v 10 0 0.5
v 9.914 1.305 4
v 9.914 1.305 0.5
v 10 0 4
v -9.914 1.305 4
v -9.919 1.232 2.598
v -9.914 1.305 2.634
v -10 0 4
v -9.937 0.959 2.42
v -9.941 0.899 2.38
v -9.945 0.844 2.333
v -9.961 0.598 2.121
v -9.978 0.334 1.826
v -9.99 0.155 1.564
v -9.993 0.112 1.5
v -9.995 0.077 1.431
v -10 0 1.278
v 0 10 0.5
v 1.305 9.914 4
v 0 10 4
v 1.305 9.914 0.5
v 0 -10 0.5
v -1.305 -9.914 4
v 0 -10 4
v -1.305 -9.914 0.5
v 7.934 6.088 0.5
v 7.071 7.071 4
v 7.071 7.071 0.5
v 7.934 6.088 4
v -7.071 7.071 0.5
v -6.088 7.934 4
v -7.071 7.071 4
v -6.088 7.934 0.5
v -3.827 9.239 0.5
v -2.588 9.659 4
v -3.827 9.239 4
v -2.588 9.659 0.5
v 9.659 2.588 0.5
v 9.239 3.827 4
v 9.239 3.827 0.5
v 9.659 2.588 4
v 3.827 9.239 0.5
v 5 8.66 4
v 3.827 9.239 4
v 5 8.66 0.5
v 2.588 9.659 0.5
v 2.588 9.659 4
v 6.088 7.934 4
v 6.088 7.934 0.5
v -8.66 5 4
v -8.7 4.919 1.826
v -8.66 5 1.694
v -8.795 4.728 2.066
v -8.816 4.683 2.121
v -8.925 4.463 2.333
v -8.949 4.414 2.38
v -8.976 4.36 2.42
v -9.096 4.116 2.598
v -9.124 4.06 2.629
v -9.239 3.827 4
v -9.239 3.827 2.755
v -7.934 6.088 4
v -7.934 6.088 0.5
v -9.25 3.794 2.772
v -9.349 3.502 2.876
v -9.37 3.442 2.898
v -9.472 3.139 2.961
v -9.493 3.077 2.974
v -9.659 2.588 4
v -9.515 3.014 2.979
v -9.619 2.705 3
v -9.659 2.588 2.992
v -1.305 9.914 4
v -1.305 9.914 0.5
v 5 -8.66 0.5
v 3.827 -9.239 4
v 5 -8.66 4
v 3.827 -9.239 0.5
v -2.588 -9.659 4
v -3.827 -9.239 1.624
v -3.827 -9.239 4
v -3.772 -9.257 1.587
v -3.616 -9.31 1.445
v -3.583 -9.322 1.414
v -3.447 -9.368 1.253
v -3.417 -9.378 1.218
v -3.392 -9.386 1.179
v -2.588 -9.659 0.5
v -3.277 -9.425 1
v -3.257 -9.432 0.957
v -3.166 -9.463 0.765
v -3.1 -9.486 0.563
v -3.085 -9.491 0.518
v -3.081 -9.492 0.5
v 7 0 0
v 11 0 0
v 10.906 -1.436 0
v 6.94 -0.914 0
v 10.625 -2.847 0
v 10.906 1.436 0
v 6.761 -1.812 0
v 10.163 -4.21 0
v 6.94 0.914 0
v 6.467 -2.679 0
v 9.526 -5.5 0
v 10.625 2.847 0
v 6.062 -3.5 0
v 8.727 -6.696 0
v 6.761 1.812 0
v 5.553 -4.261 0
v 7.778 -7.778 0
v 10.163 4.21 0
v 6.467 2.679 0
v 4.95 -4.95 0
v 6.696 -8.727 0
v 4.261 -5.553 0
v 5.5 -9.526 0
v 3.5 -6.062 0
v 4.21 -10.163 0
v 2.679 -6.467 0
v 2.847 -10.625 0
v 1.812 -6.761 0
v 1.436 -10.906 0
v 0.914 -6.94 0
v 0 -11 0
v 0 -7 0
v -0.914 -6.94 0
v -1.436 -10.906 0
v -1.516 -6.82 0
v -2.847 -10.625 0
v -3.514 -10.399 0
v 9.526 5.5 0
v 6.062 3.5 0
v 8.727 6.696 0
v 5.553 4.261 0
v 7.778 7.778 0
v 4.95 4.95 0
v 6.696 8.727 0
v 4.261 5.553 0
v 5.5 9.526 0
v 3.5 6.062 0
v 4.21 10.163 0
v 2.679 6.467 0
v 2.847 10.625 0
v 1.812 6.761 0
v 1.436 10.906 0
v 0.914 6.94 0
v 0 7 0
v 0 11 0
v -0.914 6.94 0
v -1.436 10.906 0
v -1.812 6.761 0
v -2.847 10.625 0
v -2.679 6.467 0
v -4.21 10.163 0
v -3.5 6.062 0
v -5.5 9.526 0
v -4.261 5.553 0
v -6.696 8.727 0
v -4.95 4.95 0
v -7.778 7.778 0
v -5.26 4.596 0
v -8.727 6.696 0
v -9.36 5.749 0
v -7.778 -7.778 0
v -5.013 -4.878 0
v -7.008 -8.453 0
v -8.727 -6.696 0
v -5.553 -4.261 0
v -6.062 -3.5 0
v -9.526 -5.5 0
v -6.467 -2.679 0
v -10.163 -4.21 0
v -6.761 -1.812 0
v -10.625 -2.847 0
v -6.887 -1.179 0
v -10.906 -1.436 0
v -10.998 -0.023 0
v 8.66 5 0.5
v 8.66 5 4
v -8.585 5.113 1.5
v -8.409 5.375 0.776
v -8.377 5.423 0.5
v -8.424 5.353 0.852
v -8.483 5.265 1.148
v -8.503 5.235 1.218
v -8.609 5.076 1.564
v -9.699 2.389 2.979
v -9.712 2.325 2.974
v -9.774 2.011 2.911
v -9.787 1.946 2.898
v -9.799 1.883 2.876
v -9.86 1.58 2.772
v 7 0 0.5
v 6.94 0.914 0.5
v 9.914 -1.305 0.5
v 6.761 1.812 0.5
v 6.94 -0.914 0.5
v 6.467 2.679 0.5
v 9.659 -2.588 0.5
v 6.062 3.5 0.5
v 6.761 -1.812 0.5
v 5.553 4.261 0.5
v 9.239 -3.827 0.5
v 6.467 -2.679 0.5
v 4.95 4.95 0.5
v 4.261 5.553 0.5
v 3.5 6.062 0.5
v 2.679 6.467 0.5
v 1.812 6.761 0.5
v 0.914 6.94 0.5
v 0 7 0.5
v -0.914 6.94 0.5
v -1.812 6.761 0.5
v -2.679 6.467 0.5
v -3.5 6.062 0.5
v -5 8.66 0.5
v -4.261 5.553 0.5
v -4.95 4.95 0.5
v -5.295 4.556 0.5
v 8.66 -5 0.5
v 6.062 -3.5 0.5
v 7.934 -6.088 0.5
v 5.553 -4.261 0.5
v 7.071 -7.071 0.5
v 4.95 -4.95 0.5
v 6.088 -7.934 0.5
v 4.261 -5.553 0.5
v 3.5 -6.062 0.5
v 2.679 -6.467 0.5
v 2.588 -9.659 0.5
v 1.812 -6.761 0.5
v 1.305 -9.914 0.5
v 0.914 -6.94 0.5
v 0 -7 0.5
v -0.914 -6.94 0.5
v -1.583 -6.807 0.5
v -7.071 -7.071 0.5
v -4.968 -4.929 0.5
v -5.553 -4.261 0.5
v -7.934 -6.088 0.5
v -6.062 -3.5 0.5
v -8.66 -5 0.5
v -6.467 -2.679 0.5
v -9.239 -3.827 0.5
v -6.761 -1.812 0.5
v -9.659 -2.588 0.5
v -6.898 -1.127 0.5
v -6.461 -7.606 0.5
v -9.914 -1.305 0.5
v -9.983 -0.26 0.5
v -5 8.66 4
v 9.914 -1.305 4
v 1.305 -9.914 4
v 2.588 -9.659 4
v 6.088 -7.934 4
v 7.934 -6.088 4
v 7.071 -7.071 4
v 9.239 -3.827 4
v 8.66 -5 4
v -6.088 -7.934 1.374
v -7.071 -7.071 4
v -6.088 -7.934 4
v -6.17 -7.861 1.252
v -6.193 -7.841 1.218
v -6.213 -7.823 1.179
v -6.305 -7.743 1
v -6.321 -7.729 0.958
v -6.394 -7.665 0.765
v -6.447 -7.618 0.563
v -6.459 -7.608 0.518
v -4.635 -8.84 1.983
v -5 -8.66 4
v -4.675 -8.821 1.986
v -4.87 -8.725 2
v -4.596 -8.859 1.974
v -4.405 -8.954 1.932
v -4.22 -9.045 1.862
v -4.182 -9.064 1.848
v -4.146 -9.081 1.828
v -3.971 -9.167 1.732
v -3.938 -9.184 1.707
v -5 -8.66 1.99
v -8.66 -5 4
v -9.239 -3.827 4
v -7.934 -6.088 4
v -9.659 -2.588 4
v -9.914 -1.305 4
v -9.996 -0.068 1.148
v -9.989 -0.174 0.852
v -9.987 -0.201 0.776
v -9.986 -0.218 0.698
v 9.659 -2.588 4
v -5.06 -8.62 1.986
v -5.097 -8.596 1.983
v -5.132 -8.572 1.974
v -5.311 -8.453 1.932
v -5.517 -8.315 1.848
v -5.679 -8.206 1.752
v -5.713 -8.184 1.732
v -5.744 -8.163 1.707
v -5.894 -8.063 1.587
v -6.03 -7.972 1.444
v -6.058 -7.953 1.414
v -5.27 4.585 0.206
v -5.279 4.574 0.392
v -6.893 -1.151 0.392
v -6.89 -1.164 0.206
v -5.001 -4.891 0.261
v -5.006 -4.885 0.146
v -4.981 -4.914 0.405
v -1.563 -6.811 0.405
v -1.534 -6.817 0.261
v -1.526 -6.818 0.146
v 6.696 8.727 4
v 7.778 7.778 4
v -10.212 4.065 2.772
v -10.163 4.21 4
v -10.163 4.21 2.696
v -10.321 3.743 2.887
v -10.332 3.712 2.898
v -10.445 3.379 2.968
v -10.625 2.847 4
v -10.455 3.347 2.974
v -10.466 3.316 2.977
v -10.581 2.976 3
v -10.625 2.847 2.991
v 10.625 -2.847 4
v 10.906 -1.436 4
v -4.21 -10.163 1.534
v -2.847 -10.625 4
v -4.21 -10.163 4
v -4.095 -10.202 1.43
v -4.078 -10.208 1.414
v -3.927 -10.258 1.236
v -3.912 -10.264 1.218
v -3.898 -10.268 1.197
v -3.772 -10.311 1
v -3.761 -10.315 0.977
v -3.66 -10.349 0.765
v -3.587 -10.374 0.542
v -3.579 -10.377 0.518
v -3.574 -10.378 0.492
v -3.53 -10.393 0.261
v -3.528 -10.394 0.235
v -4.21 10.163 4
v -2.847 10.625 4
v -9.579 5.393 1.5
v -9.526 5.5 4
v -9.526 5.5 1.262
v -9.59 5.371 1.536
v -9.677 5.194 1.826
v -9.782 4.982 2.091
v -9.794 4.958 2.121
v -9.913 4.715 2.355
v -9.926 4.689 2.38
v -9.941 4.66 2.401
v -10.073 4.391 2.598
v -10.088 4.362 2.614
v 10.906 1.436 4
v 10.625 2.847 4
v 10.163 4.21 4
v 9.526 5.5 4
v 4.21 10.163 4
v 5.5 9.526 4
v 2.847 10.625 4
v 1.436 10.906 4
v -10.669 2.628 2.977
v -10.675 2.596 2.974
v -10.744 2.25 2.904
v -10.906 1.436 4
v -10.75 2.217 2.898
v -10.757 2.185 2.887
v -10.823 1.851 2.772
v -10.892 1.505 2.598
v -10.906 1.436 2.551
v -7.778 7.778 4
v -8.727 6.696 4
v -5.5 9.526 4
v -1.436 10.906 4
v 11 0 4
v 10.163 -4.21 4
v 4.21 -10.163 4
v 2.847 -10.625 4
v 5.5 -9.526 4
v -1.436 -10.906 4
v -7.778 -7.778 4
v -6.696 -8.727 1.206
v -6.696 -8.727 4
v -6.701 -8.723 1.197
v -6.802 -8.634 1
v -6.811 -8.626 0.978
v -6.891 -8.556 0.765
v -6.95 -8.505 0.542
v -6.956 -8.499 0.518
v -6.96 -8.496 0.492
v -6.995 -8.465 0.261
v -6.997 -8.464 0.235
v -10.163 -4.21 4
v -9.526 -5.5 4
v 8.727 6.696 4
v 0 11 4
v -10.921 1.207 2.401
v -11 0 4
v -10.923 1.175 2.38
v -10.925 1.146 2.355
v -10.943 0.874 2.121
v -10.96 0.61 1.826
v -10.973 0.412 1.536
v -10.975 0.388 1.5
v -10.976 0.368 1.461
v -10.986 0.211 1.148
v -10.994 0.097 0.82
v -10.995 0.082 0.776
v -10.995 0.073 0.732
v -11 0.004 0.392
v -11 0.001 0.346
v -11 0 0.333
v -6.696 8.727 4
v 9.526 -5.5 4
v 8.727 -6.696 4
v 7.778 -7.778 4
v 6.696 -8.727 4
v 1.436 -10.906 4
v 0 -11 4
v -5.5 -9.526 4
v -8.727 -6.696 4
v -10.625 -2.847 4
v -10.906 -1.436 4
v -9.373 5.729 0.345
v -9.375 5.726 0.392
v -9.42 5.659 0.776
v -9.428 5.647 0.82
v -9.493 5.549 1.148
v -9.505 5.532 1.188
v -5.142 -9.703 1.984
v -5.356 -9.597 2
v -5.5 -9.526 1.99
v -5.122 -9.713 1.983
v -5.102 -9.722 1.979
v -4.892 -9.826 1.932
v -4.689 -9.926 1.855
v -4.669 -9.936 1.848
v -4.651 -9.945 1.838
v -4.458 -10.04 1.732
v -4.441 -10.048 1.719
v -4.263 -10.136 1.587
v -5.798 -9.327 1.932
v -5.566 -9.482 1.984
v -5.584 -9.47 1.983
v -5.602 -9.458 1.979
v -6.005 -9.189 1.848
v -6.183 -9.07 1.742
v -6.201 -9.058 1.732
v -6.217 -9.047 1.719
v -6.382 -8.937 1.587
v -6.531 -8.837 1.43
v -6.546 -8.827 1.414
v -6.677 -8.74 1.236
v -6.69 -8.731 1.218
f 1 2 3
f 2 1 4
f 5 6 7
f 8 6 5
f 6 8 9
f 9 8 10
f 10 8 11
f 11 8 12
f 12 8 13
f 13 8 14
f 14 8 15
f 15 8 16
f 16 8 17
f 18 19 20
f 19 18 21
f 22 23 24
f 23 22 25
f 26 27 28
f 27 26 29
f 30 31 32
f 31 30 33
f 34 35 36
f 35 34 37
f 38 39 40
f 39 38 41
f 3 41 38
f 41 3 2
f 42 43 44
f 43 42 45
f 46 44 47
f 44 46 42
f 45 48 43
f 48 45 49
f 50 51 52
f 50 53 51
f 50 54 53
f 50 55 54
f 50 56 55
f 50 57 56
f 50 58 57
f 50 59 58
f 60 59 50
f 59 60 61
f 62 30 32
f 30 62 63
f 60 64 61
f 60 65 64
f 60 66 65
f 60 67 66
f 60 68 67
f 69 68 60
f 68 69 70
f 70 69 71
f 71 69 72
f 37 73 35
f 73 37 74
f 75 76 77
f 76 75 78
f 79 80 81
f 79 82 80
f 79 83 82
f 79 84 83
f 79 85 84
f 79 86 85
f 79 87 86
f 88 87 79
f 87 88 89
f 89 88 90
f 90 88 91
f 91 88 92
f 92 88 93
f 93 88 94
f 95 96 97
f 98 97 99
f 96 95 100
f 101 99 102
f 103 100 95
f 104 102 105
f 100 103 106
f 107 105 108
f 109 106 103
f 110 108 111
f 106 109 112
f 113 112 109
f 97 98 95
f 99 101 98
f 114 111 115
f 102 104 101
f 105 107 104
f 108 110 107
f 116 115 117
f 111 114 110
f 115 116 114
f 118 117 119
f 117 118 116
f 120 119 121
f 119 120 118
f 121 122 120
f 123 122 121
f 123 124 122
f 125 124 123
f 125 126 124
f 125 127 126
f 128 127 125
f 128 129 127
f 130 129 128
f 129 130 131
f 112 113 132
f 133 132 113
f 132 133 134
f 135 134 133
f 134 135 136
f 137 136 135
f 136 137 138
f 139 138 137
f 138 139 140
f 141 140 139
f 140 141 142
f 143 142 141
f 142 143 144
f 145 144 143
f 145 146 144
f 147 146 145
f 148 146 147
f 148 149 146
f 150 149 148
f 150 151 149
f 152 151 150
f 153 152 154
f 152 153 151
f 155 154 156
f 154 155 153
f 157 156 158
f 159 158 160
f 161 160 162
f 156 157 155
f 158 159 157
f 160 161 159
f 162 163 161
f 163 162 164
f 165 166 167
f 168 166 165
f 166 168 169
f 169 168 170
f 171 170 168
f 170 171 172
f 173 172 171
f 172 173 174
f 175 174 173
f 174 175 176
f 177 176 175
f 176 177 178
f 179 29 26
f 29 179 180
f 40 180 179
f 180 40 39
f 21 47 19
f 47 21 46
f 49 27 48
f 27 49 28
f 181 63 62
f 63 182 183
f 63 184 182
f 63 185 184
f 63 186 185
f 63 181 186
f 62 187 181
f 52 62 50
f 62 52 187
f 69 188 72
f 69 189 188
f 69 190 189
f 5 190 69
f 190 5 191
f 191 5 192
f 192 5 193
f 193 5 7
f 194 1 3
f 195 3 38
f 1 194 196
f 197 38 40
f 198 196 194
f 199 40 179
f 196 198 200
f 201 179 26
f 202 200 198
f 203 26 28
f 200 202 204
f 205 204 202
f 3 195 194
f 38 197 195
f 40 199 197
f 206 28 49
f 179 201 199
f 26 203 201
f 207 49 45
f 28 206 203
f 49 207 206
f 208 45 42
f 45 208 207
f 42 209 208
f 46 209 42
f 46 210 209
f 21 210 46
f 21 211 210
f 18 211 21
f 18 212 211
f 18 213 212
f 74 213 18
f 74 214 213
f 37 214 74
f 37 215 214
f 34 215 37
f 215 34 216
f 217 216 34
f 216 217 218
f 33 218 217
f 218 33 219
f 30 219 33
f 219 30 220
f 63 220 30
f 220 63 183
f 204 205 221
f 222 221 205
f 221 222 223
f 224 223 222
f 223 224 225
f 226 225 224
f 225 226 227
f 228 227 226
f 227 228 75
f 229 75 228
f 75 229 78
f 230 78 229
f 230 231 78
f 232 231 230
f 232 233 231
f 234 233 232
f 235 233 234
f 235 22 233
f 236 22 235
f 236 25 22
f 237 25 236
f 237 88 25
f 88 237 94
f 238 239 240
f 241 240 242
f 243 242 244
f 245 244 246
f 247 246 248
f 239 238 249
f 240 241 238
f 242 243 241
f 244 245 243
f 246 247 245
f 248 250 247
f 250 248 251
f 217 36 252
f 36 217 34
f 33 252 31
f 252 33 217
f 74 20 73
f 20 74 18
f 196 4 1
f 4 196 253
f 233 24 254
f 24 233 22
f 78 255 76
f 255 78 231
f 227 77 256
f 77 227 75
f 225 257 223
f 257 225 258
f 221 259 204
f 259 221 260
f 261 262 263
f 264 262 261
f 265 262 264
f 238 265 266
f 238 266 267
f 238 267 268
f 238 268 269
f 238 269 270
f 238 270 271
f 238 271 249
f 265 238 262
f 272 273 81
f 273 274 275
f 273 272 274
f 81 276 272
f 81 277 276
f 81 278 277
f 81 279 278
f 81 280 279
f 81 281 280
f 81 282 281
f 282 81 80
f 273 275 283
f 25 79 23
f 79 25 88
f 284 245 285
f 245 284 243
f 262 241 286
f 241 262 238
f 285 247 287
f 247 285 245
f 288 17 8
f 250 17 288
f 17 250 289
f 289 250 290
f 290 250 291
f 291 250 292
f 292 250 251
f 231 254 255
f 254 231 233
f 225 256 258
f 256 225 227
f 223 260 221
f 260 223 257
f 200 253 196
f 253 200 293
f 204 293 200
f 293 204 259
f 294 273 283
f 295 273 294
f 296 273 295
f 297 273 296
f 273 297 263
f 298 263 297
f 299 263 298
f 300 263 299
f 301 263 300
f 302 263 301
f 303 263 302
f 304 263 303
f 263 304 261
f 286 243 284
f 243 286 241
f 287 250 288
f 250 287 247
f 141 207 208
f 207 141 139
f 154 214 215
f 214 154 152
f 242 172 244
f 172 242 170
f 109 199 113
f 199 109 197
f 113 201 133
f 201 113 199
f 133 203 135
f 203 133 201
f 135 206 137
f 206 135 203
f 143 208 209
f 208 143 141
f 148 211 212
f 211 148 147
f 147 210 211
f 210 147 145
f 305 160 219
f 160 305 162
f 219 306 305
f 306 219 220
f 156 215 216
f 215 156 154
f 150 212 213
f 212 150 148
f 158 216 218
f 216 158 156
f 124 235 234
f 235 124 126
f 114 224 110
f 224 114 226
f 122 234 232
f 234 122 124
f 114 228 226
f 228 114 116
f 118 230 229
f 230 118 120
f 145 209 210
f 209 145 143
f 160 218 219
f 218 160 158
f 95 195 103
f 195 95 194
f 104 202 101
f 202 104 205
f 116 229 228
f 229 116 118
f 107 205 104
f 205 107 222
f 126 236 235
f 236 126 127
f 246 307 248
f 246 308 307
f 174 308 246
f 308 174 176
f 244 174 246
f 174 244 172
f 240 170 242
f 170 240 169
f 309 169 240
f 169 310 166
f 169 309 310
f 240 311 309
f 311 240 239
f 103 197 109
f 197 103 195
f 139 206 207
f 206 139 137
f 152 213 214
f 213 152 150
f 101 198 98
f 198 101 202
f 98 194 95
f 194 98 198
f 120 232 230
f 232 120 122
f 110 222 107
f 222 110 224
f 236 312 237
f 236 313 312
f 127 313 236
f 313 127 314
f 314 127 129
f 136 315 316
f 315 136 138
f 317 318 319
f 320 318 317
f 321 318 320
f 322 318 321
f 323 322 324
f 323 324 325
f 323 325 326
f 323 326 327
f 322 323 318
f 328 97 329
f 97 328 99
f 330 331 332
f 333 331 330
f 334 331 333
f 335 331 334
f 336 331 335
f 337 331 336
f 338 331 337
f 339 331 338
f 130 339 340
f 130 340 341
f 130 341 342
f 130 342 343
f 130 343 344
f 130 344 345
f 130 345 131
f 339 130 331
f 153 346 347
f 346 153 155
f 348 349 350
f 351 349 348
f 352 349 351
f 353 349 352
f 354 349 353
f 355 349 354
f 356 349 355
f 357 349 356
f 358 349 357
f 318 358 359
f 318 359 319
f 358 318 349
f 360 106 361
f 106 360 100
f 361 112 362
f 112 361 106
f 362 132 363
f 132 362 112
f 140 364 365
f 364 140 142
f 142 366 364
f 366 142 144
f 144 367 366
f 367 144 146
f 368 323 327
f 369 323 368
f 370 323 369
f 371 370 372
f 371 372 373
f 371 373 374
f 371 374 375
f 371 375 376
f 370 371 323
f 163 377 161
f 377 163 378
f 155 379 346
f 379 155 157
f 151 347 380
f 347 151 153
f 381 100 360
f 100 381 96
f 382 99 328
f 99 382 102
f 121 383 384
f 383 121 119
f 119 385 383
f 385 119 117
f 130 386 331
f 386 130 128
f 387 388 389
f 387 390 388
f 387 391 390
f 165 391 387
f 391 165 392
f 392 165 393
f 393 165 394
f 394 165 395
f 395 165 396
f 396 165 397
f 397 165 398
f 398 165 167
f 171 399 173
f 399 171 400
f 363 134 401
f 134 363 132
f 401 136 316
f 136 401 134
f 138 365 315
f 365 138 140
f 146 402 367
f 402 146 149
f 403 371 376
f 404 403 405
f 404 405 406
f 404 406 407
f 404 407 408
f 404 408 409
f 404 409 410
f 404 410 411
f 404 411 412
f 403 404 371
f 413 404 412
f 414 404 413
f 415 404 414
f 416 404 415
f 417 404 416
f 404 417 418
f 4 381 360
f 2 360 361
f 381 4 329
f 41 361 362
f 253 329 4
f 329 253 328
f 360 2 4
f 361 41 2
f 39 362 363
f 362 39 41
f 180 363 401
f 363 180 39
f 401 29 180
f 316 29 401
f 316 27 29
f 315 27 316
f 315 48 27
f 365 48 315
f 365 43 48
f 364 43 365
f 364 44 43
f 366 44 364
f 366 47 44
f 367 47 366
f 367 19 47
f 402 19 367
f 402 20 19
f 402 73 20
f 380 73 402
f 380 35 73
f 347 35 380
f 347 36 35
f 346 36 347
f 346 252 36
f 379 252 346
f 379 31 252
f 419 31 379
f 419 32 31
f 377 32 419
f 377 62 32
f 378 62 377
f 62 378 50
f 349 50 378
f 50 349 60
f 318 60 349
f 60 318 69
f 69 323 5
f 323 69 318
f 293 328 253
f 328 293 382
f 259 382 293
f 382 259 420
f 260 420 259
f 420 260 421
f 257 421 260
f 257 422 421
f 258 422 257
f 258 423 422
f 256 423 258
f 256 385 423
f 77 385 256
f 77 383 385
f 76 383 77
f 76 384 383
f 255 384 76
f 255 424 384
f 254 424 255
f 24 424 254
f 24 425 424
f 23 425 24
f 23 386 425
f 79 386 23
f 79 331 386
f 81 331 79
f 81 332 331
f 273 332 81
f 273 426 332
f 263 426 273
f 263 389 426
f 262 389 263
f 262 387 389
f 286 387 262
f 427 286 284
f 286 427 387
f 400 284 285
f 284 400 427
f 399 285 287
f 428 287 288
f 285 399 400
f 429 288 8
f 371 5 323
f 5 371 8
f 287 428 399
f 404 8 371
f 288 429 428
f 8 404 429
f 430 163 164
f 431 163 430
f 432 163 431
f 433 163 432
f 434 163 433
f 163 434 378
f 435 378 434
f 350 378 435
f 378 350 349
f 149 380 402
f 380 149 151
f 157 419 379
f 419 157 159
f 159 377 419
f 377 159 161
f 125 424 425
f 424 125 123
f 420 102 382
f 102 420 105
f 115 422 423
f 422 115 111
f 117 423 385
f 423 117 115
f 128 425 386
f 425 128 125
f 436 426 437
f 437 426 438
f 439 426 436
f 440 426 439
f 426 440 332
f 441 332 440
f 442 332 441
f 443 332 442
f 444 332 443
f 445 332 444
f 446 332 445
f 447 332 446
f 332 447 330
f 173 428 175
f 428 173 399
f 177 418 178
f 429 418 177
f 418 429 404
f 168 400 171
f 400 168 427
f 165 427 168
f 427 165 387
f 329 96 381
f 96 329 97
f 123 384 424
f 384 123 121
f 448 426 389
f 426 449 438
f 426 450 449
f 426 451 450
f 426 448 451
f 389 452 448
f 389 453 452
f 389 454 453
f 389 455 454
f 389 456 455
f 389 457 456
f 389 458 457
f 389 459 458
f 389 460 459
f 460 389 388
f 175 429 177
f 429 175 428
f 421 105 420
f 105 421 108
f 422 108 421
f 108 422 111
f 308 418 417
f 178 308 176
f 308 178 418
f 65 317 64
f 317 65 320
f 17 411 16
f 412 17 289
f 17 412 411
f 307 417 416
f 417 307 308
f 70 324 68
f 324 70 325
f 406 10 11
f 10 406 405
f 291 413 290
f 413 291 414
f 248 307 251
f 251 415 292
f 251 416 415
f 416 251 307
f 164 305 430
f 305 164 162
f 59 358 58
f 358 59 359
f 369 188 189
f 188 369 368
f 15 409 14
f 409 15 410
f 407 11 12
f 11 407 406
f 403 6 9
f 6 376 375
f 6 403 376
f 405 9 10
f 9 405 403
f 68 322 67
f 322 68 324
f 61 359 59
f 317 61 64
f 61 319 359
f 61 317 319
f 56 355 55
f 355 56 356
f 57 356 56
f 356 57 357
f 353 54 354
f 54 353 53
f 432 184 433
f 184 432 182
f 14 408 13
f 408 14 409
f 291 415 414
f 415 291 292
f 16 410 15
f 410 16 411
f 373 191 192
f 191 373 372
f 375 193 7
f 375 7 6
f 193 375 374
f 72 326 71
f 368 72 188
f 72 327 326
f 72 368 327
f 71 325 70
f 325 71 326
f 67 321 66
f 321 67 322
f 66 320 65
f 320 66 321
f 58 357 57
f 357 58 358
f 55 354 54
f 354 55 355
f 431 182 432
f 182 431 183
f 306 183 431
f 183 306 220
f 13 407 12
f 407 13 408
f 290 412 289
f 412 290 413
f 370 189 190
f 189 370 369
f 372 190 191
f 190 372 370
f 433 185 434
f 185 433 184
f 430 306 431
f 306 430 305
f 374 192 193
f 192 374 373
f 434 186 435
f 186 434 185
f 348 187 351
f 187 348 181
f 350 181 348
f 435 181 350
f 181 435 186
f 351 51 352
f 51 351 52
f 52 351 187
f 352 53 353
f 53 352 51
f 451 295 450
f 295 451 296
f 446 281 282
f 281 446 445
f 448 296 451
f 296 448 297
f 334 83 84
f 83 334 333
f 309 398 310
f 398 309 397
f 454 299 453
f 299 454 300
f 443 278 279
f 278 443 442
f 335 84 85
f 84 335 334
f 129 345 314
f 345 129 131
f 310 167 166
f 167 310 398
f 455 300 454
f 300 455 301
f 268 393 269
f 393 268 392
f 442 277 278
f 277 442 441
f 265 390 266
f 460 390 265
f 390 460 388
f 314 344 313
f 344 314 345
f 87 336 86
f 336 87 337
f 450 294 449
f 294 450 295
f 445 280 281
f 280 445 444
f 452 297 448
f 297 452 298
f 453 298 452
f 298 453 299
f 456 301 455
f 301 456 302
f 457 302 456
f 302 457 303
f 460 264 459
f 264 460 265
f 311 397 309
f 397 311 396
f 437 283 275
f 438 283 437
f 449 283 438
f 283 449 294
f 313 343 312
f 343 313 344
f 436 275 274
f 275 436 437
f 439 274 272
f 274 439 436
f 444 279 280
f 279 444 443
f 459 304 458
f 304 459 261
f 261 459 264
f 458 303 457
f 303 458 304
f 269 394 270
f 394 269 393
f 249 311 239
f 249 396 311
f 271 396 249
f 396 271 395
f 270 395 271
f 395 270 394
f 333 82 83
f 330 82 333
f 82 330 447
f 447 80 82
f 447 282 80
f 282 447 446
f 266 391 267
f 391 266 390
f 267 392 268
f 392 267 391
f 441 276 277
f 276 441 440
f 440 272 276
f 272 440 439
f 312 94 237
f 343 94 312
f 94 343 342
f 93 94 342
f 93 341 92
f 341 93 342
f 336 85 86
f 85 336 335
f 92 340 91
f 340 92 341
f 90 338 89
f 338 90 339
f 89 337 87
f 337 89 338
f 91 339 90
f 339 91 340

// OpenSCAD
// file: ../build_environments.scad
// build_environments.scad: modules to build level sections
//

module pool(diameter=10.0, wall_height=2.0, step_width=3.0, connections=[])
{
    difference() {
        union() {
        difference() {
            cylinder(h=0.5,r1=diameter+step_width,r2=diameter+step_width,$fn=48);
            translate([0,0,-0.1])
                cylinder(h=0.7,r1=diameter,r2=diameter,$fn=48);
        }
        difference() {
            cylinder(h=wall_height,r1=diameter+step_width+1.0,r2=diameter+step_width+1.0,$fn=48);
            translate([0,0,-0.1])
                cylinder(h=wall_height+0.2,r1=diameter+step_width,r2=diameter+step_width,$fn=48);
        }
        }
    
        for (c = connections)
        {
            rotate([0,90,0]) {
                angle = atan2(c[1],c[0]);
                rotate([-angle,0,0]) {
                    cylinder(h=diameter+5.0,r1=c[2],r2=c[2],$fn=48);
                }
            }
        }
    }
}

module straight(length=10.0, width=2.0, dy1=0.0, dy2=0.0, dz=0.0)
{
    dims = [0, 0, 0, 0, 0, (dz/length)];
    matrix = [
        [ 1, dims[0], dims[1], 0 ],
        [ dims[2], 1, dims[4], 0 ],
        [ dims[5], dims[3], 1, 0 ],
        [ 0, 0, 0, 1 ]
    ];
    multmatrix(matrix)
    difference() {
        translate([dy1,0,0])
        union() {
            rotate([0,90,0]) {
                difference() {
                    cylinder(h=(length-dy1-dy2),r1=width+1.0,r2=width+1.0,$fn=24);
                    translate([0,0,-0.1])
                        cylinder(h=(length-dy1-dy2+0.2),r1=width,r2=width,$fn=24);
                }
                difference() {
                    cylinder(h=1.0,r1=width+2.0,r2=width+2.0,$fn=24);
                    translate([0,0,-0.1])
                        cylinder(h=1.2,r1=width,r2=width,$fn=24);
                }
                translate([0,0,(length-dy1-dy2)-1.0]) {
                    difference() {
                        cylinder(h=1.0,r1=width+2.0,r2=width+2.0,$fn=24);
                        translate([0,0,-0.1])
                            cylinder(h=1.2,r1=width,r2=width,$fn=24);
                    }
                }
            }
        }
        translate([0,0,-(2*width+4.0)/2])
            cube([3*length,3*length,2*width+4.0],center=true);
    }
}

module curve(p0=[0,0], center=[0,0], dir=1, angle=0.0, width=2.0)
{
    radius = sqrt((p0[0]-center[0])*(p0[0]-center[0]) + (p0[1]-center[1])*(p0[1]-center[1]));
    if (dir == 0) {
        difference() {
            rotate([0,0,-90])
            difference() {
                rotate_extrude(angle = angle, convexity = 10, $fn=32)
                    translate([radius, 0, 0])
                        circle(r = width+1.0,$fn=24);
                rotate([0,0,-1.0])
                    rotate_extrude(angle = angle+2.0, convexity = 10, $fn=32)
                        translate([radius, 0, 0])
                            circle(r = width,$fn=24);
            }
            translate([0,0,-(2*width+4.0)/2])
                cube([5*radius,5*radius,2*width+4.0],center=true);
        }
    }
    else {
        difference() {
            rotate([0,0,90])
            difference() {
                rotate_extrude(angle = -angle, convexity = 10, $fn=32)
                    translate([radius, 0, 0])
                        circle(r = width+1.0,$fn=24);
                rotate([0,0,1.0])
                    rotate_extrude(angle = -angle-2.0, convexity = 10, $fn=32)
                        translate([radius, 0, 0])
                            circle(r = width,$fn=24);
            }
            translate([0,0,-(2*width+4.0)/2])
                cube([5*radius,5*radius,2*width+4.0],center=true);
        }
    }

}

// test pool
//pool(diameter=12.0000, wall_height=3.0000, step_width=3.0000, connections=[[0.0000,-26.0000,2.0000], [23.6074,0.0000,2.0000]]);

// test straight, slope
//straight(length=26.0000, width=2.0000, dy1=11.8322, dy2=6.7082, dz=0.0000);
//straight(length=29.1549, width=12.0000, dy1=0.0000, dy2=0.0000, dz=-15.0000);

// test curve
//curve(p0=[23.6074, 0.0000], center=[23.6074, 5.0000], dir=0, angle=60.1011, width=2.0000);
//curve(p0=[33.6426, 12.4219], center=[37.9771, 9.9295], dir=1, angle=120.4627, width=2.0000);
// main file
use <../build_environments.scad>;
pool(diameter=7.0000, wall_height=4.0000, step_width=3.0000, connections=[[-15.3114,4.3063,3.0000], [-6.2004,-11.1091,2.0000]]);
